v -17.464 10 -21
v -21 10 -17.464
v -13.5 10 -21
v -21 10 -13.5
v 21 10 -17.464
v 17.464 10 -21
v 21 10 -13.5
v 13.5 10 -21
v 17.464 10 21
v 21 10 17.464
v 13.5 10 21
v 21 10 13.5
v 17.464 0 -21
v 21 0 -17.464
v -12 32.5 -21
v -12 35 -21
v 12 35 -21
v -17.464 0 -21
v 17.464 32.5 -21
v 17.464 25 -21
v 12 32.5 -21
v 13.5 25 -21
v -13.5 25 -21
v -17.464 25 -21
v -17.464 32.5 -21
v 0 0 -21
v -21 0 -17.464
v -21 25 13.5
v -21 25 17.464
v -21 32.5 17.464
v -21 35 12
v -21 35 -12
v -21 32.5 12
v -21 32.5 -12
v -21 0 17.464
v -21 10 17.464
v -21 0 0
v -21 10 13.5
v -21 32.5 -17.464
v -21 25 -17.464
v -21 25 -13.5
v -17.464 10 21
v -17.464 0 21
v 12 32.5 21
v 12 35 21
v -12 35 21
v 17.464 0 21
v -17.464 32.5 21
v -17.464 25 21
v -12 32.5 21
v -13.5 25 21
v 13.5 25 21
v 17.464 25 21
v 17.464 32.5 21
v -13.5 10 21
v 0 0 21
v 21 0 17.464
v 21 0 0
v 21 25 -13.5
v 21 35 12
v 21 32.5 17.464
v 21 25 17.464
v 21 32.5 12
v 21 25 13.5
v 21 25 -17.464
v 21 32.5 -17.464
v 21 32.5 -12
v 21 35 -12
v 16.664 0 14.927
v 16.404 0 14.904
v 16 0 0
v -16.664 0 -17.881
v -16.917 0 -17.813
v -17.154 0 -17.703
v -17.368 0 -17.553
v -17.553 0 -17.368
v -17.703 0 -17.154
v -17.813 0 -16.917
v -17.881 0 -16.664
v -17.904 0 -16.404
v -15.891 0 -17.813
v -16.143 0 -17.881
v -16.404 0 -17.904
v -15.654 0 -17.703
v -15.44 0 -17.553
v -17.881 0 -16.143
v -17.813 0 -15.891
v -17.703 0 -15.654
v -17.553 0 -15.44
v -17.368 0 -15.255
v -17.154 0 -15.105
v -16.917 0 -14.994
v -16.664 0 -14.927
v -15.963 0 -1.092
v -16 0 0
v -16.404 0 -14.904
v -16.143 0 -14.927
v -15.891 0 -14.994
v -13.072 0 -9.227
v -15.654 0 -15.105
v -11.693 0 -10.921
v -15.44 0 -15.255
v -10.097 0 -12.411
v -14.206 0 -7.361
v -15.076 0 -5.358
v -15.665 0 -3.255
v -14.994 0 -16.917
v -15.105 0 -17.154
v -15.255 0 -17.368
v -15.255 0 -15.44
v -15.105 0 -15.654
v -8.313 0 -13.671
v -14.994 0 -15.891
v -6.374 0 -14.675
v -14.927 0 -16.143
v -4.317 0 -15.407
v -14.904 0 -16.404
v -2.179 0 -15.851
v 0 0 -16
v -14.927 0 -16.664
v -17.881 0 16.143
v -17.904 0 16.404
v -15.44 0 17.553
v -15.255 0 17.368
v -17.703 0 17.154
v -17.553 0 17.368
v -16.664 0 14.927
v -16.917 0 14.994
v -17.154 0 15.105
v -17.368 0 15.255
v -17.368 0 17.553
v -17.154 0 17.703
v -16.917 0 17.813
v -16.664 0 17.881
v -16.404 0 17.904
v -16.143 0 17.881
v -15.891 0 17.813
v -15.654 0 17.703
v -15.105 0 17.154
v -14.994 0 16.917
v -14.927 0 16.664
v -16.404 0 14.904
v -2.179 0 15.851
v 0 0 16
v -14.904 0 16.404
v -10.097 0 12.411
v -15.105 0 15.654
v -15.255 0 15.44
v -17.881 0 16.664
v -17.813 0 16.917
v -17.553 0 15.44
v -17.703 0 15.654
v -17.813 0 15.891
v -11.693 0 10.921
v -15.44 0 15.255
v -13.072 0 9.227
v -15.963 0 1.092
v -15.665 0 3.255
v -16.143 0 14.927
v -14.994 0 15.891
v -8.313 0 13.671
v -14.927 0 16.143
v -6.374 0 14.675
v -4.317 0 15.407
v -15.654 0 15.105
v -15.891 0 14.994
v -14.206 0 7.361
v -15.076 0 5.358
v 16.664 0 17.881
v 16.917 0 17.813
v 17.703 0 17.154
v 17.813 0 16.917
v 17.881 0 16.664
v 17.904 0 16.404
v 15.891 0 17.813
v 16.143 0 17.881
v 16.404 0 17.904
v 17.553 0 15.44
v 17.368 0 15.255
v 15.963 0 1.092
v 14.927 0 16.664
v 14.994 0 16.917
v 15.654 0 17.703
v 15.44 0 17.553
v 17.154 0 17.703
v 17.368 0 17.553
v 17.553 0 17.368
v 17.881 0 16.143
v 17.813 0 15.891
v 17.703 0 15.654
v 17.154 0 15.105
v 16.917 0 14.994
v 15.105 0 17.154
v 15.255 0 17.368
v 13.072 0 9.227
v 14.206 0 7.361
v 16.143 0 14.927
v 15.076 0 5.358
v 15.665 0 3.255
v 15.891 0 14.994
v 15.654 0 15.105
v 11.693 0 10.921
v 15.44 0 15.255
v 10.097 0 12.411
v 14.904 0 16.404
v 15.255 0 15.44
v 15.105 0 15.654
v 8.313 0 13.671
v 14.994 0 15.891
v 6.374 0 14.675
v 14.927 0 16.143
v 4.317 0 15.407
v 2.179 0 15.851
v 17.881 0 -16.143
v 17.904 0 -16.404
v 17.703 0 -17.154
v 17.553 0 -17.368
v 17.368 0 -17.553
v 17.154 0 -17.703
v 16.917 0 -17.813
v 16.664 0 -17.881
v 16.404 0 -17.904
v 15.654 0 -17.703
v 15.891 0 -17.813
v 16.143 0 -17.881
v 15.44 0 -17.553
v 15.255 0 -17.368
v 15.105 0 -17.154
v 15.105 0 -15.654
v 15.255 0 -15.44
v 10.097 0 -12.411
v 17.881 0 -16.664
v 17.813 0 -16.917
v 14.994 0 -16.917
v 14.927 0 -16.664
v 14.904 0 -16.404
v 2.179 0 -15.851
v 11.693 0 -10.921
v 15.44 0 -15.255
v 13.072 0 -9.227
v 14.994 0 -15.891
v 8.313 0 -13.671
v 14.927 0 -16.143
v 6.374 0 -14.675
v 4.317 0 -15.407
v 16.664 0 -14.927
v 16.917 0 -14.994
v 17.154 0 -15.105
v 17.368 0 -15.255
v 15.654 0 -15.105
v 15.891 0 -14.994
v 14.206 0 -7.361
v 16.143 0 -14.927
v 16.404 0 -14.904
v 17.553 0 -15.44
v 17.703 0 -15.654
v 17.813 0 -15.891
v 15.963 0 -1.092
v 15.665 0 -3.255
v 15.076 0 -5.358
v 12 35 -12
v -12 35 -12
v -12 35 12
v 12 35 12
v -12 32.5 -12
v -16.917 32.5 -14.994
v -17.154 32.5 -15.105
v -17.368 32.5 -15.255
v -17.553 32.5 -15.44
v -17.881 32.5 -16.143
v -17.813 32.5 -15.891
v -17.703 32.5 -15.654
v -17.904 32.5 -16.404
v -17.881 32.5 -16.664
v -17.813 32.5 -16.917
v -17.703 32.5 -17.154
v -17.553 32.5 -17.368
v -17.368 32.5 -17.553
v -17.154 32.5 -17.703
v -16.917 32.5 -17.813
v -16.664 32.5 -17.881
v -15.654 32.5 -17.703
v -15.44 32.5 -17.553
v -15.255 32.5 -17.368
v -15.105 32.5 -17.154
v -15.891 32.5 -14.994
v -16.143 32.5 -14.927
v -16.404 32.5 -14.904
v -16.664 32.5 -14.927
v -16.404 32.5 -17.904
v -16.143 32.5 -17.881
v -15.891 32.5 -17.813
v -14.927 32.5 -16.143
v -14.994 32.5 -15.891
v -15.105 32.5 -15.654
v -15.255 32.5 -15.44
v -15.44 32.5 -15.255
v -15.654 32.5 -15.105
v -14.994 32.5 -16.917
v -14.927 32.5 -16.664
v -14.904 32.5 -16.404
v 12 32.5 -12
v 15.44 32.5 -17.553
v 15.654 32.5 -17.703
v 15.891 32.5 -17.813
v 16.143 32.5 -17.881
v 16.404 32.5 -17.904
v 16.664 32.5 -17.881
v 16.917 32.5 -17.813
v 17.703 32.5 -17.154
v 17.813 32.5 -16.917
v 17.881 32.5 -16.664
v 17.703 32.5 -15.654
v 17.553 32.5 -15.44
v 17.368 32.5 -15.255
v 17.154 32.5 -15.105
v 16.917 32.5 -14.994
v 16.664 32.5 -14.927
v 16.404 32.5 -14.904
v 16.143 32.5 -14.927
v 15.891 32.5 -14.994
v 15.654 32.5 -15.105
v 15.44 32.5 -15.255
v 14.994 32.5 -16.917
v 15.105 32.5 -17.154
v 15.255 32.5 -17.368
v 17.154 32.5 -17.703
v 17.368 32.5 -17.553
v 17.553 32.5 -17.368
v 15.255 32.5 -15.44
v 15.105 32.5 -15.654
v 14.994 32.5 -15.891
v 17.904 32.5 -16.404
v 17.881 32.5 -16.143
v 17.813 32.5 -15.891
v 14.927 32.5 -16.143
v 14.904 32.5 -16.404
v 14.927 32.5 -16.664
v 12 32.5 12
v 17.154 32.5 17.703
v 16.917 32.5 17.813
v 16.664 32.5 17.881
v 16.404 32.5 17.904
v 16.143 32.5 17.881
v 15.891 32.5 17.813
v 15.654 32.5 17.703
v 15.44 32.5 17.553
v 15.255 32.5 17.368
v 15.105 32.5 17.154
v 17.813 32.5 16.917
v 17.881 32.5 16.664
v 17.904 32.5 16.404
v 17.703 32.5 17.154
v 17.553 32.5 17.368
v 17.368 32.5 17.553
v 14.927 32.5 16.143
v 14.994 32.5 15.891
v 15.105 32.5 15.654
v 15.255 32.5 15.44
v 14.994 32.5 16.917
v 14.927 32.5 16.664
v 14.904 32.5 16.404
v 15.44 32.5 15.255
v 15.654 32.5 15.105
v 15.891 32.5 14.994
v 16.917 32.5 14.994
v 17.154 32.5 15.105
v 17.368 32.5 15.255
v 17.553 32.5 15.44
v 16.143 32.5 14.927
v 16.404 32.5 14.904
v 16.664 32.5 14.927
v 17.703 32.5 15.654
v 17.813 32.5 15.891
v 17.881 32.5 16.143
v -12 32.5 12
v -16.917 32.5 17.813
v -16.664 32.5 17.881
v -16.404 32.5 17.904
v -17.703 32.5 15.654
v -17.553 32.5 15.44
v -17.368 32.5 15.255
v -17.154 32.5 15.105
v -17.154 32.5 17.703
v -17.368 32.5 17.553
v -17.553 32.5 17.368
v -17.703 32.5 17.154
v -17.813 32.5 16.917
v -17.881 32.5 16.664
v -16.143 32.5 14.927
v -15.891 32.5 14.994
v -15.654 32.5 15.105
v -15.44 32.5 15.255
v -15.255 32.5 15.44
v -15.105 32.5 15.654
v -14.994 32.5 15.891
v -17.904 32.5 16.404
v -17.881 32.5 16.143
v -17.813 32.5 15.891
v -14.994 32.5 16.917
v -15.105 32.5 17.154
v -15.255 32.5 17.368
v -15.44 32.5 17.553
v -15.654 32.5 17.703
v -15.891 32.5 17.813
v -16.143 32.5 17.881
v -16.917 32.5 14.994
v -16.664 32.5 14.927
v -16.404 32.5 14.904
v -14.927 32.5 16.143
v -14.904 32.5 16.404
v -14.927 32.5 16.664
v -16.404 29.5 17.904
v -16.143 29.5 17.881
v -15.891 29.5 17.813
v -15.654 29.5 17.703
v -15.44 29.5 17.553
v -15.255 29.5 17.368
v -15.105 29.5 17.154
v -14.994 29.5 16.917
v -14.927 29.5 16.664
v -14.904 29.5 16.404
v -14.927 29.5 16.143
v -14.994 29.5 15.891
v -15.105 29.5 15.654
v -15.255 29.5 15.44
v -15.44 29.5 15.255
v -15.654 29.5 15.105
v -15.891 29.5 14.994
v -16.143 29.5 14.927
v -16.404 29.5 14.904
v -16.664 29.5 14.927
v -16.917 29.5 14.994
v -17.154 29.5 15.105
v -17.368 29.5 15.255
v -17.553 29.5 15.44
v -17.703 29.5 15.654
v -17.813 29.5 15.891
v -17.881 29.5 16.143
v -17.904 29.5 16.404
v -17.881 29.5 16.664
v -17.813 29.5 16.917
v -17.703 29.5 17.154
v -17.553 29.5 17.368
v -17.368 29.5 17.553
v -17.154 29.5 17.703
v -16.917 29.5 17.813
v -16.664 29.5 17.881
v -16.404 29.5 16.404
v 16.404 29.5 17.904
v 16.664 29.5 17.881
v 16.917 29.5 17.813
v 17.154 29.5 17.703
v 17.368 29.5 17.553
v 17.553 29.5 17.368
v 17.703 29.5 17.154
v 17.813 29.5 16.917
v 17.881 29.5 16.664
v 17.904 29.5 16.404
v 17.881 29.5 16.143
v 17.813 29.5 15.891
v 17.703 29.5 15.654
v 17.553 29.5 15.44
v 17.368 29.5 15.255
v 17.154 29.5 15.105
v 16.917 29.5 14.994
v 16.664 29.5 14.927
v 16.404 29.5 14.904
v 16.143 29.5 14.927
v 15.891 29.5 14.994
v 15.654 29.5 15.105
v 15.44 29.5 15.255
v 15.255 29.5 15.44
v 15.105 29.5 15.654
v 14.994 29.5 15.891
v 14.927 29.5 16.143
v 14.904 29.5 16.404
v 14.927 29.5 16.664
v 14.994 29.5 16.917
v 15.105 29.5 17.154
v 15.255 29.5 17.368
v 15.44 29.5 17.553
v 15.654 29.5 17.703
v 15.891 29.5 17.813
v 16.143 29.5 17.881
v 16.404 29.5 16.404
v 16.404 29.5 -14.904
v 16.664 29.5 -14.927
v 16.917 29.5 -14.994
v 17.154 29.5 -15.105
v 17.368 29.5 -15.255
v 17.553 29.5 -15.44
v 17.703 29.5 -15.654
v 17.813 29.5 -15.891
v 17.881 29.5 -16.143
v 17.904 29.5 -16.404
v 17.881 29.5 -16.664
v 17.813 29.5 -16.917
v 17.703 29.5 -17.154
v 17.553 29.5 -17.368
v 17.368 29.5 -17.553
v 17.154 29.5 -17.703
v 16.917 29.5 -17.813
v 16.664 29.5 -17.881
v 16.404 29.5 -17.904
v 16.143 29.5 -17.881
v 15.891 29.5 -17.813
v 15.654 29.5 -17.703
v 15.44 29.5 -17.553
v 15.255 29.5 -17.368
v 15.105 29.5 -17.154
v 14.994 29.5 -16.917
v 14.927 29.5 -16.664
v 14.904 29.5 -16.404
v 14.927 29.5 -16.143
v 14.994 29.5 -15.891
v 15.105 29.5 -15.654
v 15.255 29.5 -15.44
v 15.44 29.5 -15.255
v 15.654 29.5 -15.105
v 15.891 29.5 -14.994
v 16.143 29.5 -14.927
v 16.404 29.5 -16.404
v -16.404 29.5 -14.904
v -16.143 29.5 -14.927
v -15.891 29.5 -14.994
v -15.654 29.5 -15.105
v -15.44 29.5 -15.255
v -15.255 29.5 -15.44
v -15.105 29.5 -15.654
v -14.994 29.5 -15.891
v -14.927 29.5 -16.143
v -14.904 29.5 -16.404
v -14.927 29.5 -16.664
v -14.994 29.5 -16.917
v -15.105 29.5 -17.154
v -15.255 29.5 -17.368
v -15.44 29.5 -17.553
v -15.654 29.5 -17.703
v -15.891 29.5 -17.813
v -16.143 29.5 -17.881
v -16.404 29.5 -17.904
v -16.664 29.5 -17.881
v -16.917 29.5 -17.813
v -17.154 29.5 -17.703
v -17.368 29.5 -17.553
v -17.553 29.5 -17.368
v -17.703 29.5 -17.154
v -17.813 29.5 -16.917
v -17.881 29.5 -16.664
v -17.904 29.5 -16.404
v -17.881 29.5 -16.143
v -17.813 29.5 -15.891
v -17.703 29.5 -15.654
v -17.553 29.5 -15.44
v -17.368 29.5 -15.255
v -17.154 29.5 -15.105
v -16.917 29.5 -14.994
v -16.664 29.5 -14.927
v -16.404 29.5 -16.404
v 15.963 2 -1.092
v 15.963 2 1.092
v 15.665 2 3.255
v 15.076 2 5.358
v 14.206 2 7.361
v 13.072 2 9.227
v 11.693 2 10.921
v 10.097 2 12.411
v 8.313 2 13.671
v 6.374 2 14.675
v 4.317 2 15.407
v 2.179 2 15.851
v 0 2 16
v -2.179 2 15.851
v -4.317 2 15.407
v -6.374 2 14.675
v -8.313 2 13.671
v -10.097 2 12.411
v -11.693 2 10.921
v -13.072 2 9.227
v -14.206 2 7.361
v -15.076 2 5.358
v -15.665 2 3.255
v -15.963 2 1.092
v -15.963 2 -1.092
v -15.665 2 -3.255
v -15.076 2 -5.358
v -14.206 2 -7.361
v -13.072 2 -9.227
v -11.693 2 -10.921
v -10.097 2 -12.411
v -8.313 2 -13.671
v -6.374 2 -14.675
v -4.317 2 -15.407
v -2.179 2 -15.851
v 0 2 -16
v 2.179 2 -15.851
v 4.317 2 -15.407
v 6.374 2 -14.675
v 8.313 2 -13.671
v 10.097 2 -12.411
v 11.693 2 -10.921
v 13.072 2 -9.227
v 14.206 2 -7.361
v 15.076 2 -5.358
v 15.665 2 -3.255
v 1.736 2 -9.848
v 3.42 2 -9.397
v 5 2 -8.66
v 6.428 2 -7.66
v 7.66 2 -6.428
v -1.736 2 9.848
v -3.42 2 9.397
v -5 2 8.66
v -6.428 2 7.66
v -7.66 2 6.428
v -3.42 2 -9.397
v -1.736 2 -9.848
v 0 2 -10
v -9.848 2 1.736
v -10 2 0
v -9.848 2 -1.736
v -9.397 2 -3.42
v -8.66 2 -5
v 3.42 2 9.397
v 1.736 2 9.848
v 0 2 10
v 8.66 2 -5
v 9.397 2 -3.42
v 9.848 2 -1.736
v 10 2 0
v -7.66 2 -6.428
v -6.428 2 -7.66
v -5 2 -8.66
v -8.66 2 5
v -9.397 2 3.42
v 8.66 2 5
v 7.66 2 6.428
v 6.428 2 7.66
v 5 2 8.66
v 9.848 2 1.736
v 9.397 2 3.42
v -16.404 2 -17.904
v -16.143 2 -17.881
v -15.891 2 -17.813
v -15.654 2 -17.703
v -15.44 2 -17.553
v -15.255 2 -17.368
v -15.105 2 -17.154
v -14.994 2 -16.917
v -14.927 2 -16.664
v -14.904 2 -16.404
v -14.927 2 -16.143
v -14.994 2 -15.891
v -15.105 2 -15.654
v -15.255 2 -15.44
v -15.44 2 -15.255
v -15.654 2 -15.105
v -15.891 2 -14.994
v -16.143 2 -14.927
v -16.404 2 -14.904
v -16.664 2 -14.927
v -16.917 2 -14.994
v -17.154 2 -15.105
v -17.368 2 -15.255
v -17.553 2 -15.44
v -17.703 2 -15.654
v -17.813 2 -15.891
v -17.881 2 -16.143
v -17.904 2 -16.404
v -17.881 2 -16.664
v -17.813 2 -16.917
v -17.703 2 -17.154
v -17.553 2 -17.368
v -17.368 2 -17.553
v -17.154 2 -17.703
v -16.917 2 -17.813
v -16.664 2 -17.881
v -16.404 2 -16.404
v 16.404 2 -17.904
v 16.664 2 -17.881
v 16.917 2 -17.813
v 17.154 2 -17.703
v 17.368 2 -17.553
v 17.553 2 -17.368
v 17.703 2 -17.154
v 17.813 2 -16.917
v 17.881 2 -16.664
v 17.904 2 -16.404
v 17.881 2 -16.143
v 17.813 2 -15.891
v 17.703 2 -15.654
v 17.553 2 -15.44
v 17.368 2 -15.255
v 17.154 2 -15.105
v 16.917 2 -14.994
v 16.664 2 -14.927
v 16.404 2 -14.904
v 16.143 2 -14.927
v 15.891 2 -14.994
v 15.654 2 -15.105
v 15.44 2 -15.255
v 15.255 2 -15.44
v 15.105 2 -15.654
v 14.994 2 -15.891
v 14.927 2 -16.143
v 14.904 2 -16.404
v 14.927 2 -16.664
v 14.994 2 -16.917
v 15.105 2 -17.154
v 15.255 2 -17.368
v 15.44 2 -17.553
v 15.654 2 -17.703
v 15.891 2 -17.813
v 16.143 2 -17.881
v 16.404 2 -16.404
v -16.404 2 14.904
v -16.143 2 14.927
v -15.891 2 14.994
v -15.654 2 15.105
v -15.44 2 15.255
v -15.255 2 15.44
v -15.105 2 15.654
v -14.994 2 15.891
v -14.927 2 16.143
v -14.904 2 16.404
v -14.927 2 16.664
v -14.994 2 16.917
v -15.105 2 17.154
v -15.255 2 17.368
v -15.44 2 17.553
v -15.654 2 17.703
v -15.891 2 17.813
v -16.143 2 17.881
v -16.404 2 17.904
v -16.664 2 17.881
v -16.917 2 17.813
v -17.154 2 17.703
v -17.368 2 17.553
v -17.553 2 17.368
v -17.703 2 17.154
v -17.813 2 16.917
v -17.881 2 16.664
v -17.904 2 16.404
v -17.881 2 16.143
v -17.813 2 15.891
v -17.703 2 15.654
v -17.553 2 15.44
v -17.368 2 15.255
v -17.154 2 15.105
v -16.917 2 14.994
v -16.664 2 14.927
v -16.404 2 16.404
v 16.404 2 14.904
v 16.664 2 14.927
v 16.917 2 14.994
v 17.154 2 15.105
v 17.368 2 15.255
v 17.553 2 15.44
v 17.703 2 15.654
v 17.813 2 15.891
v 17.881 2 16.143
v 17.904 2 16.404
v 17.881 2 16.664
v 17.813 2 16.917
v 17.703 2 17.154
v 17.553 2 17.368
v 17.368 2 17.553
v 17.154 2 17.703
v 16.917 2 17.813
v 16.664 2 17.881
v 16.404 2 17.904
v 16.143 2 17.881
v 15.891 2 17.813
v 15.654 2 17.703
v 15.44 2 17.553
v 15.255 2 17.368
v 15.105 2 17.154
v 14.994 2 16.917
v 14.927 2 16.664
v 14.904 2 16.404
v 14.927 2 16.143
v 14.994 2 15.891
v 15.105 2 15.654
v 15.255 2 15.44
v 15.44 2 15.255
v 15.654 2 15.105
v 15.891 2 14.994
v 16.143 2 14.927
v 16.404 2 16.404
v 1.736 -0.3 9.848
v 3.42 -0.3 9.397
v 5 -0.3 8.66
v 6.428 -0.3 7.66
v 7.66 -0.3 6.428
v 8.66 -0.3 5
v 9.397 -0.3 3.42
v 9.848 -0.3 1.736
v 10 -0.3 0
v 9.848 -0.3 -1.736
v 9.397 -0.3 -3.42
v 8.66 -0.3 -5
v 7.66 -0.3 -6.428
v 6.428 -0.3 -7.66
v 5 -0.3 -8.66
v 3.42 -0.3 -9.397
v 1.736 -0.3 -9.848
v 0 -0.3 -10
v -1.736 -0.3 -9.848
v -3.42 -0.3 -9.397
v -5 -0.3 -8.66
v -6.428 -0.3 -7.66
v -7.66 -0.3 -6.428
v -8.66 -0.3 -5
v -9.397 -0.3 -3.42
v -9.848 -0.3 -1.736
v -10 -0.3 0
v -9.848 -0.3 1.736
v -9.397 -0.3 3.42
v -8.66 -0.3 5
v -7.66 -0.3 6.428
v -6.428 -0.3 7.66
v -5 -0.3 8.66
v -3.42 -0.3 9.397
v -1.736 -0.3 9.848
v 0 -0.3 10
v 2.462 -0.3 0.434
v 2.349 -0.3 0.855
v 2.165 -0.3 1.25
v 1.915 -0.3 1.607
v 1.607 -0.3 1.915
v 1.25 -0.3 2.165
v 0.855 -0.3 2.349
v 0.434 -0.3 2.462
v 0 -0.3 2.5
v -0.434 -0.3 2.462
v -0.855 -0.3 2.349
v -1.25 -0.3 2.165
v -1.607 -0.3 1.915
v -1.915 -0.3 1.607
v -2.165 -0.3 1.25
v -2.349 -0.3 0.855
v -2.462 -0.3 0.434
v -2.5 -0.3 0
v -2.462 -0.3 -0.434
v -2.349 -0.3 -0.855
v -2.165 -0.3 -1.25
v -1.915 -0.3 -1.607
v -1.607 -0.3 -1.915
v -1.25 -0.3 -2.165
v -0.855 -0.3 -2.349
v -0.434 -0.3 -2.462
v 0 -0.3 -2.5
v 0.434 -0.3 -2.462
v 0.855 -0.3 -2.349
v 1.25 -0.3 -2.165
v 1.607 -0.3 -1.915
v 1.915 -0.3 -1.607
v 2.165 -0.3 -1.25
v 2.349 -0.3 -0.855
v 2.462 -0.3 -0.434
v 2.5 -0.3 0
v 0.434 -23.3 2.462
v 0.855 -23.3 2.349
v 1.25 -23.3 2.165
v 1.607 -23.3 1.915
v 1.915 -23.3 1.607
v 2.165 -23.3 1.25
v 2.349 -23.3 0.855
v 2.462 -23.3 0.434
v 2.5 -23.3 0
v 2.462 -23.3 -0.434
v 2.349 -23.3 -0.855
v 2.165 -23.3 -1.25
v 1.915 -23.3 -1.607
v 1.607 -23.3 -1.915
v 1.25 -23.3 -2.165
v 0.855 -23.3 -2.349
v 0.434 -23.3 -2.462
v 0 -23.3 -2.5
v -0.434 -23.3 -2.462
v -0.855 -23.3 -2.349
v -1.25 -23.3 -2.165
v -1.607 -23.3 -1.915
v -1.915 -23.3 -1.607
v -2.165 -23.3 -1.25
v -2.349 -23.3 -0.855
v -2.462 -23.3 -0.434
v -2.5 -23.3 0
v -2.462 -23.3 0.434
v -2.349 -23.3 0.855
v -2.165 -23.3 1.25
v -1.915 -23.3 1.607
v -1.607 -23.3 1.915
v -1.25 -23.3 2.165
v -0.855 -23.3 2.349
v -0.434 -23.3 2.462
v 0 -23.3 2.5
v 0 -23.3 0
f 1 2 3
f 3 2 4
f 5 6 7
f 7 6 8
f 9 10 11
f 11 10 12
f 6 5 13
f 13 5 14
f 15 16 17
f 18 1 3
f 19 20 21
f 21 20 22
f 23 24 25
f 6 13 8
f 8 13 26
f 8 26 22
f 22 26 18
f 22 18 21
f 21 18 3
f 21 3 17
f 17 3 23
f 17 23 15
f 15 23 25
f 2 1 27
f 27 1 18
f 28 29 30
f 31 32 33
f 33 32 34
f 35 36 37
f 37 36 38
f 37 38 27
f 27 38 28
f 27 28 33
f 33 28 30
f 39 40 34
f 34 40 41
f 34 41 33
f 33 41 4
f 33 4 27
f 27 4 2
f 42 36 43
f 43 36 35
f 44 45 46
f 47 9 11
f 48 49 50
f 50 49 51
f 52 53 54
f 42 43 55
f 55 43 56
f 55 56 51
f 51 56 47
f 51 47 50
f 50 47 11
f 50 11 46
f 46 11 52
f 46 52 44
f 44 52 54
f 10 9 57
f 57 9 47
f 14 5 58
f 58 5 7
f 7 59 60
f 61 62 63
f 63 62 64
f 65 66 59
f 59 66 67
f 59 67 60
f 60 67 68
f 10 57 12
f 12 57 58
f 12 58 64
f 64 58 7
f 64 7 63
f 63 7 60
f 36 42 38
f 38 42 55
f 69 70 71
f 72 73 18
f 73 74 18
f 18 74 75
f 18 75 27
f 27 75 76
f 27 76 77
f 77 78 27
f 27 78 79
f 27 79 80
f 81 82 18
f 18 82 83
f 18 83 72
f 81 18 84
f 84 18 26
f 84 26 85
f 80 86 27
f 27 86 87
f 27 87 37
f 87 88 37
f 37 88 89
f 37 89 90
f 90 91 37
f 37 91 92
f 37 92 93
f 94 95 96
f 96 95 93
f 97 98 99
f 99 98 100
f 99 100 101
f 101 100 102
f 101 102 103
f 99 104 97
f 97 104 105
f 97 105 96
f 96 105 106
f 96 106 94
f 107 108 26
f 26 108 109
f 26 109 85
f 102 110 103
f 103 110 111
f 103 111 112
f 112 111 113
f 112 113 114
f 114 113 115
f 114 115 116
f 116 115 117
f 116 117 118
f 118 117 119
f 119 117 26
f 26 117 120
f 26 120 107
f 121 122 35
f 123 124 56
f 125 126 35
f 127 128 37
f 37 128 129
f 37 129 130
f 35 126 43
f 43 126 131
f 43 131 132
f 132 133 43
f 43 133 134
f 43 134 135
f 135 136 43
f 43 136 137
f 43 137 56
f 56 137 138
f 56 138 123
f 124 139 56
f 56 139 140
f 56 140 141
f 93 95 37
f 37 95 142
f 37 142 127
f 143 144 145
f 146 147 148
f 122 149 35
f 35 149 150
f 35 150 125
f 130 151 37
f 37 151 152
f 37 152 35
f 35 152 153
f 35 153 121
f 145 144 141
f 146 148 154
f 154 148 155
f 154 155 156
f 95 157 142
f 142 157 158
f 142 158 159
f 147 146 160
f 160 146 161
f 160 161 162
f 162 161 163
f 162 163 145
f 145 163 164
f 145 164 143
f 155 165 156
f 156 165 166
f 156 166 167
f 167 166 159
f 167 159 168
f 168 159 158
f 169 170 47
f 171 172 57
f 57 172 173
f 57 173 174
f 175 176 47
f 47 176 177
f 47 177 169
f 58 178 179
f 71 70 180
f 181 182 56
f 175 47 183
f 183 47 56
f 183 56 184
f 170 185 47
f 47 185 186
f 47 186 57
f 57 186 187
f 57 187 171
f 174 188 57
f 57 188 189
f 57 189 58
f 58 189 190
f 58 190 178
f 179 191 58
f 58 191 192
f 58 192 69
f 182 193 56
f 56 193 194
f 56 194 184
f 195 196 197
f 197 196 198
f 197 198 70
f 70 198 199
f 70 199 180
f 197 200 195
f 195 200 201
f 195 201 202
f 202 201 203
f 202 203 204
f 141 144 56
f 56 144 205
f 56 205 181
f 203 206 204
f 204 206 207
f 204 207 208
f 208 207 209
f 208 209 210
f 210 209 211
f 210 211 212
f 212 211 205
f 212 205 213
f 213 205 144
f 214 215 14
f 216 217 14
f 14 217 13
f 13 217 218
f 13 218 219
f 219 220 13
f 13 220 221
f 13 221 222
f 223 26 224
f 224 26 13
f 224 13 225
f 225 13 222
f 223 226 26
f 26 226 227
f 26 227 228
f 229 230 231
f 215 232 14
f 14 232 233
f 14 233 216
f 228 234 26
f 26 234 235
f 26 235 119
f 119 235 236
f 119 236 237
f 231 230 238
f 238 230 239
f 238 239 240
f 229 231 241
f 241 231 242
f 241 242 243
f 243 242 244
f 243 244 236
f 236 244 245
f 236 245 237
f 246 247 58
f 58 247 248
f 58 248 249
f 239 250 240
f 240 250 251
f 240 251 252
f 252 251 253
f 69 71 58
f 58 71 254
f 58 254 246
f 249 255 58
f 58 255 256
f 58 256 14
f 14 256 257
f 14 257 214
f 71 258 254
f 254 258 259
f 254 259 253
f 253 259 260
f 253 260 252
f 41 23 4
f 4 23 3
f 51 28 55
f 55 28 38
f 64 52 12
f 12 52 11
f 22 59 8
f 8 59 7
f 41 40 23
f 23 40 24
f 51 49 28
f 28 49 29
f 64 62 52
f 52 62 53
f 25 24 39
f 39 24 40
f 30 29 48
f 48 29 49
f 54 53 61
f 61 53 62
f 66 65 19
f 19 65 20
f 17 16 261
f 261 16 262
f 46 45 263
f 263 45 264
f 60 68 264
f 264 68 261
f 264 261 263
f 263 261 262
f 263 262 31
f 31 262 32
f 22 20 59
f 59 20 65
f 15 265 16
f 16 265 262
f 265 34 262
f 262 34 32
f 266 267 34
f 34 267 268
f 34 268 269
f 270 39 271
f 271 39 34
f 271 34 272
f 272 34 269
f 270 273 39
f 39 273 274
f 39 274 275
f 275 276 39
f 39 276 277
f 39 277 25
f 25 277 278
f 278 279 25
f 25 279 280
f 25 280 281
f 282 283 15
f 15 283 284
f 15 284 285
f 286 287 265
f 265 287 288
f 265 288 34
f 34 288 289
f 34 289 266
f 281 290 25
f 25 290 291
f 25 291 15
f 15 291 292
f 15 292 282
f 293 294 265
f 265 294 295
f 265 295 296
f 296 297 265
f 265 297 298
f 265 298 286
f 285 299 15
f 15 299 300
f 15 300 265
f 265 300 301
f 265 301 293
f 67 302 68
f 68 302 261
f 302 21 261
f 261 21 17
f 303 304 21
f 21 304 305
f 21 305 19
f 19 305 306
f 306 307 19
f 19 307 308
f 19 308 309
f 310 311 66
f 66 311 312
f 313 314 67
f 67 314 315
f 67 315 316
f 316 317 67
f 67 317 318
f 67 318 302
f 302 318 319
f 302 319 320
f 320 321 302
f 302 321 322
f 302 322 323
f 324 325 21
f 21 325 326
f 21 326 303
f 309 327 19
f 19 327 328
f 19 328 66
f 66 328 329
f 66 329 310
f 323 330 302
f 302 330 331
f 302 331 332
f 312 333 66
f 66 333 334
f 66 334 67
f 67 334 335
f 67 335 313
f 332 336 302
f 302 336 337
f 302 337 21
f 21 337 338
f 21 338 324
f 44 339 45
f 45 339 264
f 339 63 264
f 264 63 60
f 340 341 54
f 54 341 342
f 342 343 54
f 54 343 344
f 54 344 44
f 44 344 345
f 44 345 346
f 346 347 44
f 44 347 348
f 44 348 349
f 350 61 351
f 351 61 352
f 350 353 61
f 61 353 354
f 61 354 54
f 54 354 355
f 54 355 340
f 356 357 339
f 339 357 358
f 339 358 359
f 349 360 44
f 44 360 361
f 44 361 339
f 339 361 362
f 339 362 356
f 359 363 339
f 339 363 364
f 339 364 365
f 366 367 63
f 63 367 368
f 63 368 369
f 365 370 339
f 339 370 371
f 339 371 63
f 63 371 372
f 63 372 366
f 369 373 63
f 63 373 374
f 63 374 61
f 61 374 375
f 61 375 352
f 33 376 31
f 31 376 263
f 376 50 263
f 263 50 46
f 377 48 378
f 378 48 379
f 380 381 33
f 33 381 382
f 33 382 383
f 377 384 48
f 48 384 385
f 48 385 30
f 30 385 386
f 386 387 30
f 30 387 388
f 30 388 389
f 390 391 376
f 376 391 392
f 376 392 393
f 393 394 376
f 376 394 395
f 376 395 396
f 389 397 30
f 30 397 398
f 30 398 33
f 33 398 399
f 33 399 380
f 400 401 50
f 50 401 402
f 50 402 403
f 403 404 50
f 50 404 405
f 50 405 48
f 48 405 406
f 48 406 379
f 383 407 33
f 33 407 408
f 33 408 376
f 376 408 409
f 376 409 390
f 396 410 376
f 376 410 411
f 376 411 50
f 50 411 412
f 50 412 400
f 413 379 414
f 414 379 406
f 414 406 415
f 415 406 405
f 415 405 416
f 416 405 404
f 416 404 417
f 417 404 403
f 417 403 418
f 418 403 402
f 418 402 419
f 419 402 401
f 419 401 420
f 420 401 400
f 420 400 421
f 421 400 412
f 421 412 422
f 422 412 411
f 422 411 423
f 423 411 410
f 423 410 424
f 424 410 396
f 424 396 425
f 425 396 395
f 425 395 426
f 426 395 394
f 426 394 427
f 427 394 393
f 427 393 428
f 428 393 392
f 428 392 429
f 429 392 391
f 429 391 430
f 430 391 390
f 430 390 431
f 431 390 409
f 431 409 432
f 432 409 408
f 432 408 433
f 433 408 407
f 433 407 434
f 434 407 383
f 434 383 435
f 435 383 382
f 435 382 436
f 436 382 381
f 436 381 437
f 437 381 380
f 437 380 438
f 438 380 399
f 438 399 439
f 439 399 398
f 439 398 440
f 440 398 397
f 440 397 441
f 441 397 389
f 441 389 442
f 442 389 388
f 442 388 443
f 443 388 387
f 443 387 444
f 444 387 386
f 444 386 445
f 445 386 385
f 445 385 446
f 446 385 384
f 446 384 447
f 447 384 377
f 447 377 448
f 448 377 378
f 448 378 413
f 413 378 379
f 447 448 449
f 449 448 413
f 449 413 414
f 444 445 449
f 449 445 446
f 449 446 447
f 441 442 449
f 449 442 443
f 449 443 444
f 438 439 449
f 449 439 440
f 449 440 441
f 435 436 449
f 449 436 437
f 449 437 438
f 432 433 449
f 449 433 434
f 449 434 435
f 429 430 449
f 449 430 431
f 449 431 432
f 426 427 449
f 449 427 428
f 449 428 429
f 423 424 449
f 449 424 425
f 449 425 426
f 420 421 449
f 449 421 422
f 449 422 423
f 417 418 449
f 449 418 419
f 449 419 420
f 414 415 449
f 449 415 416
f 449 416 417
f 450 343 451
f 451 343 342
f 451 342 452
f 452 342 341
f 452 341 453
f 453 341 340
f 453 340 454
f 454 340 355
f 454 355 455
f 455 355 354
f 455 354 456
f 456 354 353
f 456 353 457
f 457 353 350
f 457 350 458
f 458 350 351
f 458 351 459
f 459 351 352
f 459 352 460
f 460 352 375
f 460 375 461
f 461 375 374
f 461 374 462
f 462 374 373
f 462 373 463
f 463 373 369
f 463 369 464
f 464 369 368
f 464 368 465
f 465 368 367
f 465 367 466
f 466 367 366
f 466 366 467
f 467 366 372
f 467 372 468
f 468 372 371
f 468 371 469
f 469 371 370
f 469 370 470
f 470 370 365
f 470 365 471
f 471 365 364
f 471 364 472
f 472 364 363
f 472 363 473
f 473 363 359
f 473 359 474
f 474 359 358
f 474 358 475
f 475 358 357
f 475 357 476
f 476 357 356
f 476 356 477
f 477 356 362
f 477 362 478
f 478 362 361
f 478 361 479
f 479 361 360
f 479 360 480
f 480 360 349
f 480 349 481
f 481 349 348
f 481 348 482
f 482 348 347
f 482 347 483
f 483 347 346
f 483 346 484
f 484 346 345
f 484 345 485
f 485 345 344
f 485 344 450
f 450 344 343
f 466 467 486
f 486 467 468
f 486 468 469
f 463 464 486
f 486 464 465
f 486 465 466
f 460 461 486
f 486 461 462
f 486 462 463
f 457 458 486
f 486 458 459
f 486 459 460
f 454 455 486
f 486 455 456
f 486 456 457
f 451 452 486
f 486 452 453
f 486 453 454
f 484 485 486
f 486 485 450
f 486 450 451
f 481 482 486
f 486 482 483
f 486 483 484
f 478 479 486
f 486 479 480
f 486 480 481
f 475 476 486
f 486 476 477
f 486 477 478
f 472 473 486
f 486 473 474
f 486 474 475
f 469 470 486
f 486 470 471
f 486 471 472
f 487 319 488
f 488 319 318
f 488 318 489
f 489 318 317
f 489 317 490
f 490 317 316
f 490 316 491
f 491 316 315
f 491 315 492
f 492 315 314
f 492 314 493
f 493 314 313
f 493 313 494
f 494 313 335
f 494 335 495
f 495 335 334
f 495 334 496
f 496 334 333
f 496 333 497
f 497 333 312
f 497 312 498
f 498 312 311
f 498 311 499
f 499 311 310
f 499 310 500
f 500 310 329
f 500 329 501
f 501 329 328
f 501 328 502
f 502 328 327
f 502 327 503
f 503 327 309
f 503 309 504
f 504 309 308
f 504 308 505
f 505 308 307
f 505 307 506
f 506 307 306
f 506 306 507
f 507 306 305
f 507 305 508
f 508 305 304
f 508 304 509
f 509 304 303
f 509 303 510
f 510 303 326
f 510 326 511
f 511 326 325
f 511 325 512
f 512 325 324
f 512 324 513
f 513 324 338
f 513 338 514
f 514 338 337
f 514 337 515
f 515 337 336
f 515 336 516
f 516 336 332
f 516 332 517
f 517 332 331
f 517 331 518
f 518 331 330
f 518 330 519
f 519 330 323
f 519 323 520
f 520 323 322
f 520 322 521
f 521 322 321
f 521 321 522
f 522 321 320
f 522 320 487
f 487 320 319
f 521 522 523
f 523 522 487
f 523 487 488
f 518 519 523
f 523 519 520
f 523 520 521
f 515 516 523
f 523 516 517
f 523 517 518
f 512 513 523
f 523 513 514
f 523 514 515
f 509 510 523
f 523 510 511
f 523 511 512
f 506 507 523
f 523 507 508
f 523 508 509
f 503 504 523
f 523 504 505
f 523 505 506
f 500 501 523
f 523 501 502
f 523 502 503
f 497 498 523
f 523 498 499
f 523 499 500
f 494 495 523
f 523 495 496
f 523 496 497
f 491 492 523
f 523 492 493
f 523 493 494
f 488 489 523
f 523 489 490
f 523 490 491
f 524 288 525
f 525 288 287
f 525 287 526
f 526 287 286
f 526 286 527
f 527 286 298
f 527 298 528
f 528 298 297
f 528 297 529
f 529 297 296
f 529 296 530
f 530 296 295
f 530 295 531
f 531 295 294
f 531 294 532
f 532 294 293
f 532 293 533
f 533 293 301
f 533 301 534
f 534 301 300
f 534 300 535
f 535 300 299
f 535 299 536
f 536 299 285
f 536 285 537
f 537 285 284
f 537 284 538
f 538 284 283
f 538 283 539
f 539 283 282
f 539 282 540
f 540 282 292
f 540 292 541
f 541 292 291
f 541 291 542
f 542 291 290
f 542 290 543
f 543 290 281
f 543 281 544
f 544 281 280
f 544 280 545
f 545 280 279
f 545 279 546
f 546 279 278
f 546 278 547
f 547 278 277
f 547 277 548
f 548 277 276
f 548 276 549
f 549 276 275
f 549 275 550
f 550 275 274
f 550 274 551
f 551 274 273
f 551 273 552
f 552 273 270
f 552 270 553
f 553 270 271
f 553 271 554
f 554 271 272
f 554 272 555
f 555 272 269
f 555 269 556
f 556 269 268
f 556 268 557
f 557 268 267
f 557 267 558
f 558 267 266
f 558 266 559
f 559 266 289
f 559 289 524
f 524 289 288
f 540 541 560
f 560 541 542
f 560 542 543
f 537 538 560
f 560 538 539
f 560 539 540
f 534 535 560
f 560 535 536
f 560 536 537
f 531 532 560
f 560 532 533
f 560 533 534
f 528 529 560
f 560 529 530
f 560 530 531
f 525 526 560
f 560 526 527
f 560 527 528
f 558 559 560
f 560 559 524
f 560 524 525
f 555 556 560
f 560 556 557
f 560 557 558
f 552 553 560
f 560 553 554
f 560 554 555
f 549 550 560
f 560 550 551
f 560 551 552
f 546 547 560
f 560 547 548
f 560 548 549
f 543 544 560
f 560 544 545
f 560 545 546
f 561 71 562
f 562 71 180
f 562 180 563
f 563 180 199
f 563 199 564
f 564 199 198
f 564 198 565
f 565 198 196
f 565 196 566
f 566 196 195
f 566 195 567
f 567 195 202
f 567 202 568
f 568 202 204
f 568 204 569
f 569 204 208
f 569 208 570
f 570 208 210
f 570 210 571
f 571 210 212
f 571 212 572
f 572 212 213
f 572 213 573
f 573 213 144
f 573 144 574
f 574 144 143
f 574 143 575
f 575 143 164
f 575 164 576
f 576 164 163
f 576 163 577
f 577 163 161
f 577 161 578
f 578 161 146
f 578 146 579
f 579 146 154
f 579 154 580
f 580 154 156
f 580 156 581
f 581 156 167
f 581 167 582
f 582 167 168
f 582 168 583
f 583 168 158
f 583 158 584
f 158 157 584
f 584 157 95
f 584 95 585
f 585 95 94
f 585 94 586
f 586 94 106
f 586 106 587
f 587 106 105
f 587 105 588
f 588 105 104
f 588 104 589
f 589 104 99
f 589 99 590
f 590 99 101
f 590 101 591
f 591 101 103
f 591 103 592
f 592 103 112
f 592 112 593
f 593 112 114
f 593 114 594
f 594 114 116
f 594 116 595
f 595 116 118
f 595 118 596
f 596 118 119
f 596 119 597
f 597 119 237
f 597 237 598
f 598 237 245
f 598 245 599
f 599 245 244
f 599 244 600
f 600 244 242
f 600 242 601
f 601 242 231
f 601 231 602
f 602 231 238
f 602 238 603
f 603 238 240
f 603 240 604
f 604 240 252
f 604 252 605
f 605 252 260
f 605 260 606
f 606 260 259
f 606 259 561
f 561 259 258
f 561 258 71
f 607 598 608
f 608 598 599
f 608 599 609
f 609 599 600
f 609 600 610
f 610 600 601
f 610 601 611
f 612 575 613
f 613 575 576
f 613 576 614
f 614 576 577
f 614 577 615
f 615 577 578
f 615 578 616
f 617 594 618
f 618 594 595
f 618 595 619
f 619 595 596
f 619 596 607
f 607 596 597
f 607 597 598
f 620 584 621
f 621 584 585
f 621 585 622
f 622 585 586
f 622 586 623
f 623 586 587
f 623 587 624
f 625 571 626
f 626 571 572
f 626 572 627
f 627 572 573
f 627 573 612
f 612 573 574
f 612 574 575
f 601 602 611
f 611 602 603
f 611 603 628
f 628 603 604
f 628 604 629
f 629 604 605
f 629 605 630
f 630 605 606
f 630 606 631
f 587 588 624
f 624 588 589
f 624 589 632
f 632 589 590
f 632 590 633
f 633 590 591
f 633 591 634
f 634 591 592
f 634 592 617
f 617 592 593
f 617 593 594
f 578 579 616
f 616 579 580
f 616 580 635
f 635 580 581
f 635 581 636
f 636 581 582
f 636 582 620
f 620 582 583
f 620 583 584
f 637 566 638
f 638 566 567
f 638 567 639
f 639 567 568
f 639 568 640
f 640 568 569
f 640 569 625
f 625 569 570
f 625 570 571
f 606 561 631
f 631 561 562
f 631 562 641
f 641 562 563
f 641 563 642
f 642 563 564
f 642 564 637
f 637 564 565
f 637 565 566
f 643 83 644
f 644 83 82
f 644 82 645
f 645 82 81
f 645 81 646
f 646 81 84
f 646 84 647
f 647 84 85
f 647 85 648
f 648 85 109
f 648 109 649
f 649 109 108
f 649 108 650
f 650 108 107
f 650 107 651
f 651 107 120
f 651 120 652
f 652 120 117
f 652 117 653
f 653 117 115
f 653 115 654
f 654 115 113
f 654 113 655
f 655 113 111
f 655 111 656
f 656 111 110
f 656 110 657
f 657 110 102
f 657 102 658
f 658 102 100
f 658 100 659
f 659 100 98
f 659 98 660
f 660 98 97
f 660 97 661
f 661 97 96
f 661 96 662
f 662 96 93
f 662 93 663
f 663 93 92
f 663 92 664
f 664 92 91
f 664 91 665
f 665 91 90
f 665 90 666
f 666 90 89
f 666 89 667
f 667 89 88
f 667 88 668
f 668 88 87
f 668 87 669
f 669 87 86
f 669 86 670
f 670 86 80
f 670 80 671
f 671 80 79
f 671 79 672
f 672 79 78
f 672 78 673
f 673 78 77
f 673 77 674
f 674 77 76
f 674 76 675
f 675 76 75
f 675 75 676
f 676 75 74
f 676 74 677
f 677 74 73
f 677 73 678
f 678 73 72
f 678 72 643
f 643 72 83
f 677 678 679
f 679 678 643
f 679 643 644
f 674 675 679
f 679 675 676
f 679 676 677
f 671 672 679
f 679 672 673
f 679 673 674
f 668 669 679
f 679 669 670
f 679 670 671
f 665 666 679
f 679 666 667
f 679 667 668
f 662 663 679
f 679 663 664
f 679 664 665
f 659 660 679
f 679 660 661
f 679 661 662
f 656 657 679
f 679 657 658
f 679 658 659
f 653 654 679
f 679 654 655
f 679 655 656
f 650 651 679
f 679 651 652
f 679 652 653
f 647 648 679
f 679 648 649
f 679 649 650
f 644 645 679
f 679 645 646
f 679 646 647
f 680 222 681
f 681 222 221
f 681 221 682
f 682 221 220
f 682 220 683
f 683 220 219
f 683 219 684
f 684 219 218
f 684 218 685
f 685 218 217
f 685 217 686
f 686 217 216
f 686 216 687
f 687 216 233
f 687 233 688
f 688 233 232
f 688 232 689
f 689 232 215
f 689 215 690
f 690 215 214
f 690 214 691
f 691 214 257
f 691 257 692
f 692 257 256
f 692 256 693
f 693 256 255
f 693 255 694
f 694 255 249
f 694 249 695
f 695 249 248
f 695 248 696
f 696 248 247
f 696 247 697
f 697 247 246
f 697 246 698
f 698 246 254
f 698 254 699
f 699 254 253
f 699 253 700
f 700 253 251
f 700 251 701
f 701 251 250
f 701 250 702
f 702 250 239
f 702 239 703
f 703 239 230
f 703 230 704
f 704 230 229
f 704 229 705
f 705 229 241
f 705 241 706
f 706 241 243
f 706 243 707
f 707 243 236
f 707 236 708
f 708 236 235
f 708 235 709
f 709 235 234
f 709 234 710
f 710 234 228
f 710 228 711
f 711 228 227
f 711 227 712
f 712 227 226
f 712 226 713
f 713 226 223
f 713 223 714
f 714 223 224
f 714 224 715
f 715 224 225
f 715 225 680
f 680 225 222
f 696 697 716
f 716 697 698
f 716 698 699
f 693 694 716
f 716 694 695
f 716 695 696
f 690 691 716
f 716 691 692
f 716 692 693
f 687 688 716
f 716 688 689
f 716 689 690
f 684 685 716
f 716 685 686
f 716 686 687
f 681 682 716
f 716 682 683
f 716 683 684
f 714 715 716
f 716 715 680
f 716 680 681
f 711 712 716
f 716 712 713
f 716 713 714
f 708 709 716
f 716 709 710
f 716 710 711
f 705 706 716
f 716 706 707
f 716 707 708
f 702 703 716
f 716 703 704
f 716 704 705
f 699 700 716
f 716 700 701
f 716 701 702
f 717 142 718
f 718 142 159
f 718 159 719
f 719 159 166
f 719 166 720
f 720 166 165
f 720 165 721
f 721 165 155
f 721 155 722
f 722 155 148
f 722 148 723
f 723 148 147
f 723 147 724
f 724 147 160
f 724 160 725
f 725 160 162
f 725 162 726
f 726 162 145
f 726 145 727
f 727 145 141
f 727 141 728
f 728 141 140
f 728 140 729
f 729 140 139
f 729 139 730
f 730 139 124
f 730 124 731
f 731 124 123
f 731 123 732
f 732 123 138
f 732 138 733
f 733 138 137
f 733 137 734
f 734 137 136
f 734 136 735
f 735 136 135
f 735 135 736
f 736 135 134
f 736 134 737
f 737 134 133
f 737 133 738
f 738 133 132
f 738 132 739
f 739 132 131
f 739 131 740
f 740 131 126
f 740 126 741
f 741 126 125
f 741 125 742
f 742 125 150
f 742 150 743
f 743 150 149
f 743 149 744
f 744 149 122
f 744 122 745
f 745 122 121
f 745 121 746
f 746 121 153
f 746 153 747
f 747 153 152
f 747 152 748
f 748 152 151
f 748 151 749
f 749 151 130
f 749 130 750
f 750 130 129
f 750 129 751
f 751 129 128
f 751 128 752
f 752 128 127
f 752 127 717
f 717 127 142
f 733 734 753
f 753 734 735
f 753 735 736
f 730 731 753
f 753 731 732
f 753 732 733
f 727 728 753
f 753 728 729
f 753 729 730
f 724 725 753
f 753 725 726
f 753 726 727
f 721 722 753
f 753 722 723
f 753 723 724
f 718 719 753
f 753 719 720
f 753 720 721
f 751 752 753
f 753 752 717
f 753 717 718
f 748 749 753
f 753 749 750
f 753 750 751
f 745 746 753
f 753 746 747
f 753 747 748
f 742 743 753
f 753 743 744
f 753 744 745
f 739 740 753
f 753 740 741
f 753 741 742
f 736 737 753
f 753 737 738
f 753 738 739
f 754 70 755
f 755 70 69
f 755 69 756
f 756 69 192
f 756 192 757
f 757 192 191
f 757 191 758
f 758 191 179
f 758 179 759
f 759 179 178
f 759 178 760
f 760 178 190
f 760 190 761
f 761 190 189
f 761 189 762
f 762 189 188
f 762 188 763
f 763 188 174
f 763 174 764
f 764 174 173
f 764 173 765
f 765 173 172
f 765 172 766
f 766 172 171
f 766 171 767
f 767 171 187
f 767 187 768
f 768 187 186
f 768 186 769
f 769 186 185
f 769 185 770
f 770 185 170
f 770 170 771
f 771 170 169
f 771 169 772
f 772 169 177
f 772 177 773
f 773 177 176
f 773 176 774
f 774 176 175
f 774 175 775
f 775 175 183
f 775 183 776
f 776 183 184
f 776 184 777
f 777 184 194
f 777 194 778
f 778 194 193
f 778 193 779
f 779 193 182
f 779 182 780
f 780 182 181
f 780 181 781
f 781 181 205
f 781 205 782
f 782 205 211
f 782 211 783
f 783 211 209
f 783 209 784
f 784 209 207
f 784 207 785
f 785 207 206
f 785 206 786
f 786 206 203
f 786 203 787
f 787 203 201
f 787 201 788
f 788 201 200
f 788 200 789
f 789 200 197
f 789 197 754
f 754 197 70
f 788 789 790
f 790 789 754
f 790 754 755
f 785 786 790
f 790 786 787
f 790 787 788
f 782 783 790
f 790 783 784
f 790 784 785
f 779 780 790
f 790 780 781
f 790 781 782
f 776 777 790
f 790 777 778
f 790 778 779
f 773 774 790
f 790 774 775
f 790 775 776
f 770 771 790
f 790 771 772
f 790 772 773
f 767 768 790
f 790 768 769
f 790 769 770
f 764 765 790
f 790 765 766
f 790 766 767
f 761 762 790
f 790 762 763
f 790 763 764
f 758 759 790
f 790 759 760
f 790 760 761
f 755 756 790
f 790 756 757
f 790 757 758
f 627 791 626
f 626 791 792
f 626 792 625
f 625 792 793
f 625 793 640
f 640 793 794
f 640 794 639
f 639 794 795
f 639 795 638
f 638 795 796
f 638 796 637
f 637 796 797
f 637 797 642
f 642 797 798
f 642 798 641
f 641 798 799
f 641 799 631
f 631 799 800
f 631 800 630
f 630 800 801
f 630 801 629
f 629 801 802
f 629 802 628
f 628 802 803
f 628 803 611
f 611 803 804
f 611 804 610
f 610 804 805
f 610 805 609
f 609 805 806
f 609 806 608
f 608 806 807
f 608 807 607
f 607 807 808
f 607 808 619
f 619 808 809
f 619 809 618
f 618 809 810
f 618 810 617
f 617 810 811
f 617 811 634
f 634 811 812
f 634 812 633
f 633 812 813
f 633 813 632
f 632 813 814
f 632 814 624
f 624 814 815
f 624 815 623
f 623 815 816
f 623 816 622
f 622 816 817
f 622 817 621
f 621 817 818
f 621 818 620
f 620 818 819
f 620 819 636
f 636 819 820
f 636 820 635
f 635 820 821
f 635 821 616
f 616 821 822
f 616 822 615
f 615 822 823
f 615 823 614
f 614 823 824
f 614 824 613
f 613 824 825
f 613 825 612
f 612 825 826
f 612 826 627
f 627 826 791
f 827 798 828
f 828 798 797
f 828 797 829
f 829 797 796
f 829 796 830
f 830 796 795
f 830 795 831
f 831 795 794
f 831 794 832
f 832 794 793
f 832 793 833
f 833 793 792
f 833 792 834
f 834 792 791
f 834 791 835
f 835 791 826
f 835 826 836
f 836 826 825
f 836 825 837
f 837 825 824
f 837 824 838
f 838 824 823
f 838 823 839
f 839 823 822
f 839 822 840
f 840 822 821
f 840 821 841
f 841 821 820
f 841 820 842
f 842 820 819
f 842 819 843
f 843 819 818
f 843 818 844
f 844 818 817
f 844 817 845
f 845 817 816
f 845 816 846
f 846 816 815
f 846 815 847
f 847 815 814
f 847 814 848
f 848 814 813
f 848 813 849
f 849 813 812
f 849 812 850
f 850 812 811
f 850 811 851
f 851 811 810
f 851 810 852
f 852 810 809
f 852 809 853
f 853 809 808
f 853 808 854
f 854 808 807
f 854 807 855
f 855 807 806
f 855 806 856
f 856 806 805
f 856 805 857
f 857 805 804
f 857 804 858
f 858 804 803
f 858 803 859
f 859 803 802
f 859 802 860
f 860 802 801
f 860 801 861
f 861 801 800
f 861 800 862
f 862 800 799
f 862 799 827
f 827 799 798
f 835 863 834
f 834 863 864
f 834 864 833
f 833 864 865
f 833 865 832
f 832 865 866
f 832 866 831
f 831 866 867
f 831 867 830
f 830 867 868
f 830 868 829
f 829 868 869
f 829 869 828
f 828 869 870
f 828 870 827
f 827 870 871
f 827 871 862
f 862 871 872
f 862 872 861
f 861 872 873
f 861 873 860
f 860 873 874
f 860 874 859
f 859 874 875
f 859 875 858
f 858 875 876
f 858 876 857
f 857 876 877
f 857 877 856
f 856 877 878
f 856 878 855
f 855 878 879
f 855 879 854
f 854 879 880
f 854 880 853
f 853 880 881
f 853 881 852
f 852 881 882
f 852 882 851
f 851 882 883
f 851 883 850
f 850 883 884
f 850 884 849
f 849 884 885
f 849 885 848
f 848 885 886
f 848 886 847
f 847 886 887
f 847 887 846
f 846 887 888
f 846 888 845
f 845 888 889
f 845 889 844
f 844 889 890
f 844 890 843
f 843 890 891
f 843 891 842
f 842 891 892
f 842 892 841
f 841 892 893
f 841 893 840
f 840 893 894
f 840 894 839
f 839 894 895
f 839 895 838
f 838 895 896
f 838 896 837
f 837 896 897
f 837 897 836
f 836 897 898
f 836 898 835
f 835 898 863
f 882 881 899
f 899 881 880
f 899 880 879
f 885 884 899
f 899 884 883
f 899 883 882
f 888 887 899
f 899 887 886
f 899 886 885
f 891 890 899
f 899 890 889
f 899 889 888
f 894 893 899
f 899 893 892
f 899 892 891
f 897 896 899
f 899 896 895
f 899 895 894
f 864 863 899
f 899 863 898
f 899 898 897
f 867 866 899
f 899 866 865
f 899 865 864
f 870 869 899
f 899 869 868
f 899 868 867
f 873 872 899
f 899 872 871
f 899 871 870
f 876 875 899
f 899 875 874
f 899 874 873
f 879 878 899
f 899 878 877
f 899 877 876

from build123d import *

# Parameters (mm, degrees)
BOSS_EXTRUDE1_DEPTH = 10
BOSS_EXTRUDE2_DEPTH = 15
BOSS_EXTRUDE3_DEPTH = 10
CUT_EXTRUDE1_DEPTH  = 2.5
SKETCH5_R           = 1.5
CUT_EXTRUDE2_DEPTH  = 3
CUT_EXTRUDE3_START  = -2
SKETCH6_R           = 16
SKETCH6_R_2         = 1.5
CUT_EXTRUDE3_DEPTH  = 2
SKETCH7_R           = 10
BOSS_EXTRUDE4_DEPTH = 2.3
SKETCH8_R           = 2.5
BOSS_EXTRUDE5_DEPTH = 23


with BuildPart() as part:
    # Sketch1 → Boss-Extrude1 (new body)
    with BuildSketch(Plane(origin=(0, 0, 0), x_dir=(1, 0, 0), z_dir=(0, 1, 0))):
        Polygon((-17.464466094, 21), (17.464466094, 21), (21, 17.464466094), (21, -17.464466094), (17.464466094, -21), (-17.464466094, -21), (-21, -17.464466094), (-21, 17.464466094), align=None)
    extrude(amount=BOSS_EXTRUDE1_DEPTH)

    # Sketch2 → Boss-Extrude2 (add)
    with BuildSketch(Plane(origin=(0, 10, 0), x_dir=(1, 0, 0), z_dir=(0, 1, 0))):
        Polygon((-13.5, 21), (13.5, 21), (21, 13.5), (21, -13.5), (13.5, -21), (-13.5, -21), (-21, -13.5), (-21, 13.5), align=None)
    extrude(amount=BOSS_EXTRUDE2_DEPTH)

    # Sketch3 → Boss-Extrude3 (add)
    with BuildSketch(Plane(origin=(0, 25, 0), x_dir=(1, 0, 0), z_dir=(0, 1, 0))):
        Polygon((-17.464466094, 21), (17.464466094, 21), (21, 17.464466094), (21, -17.464466094), (17.464466094, -21), (-17.464466094, -21), (-21, -17.464466094), (-21, 17.464466094), align=None)
    extrude(amount=BOSS_EXTRUDE3_DEPTH)

    # Sketch4 → Cut-Extrude1 (cut)
    with BuildSketch(Plane(origin=(0, 35, 0), x_dir=(1, 0, 0), z_dir=(0, 1, 0))):
        Polygon((-12, 12), (-21, 12), (-21, 17.464466094), (-17.464466094, 21), (-12, 21), align=None)
        Polygon((12, 21), (12, 12), (21, 12), (21, 17.464466094), (17.464466094, 21), align=None)
        Polygon((12, -12), (21, -12), (21, -17.464466094), (17.464466094, -21), (12, -21), align=None)
        Polygon((-12, -21), (-12, -12), (-21, -12), (-21, -17.464466094), (-17.464466094, -21), align=None)
    extrude(amount=-CUT_EXTRUDE1_DEPTH, mode=Mode.SUBTRACT)

    # Sketch5 → Cut-Extrude2 (cut)
    with BuildSketch(Plane(origin=(0, 32.5, 0), x_dir=(1, 0, 0), z_dir=(0, 1, 0))):
        with Locations(Location((16.403805922, 16.403805922, 0), (0, 0, 270))):
            Circle(SKETCH5_R)
        with Locations(Location((-16.403805922, 16.403805922, 0), (0, 0, 90))):
            Circle(SKETCH5_R)
        with Locations(Location((-16.403805922, -16.403805922, 0), (0, 0, 270))):
            Circle(SKETCH5_R)
        with Locations(Location((16.403805922, -16.403805922, 0), (0, 0, 90))):
            Circle(SKETCH5_R)
    extrude(amount=-CUT_EXTRUDE2_DEPTH, mode=Mode.SUBTRACT)

    # Sketch6 → Cut-Extrude3 (cut)
    with BuildSketch(Plane.XZ.offset(CUT_EXTRUDE3_START)):
        with Locations(Location((0, 0, 0), (0, 0, 270))):
            Circle(SKETCH6_R)
        with Locations(Location((-16.403805922, -16.403805922, 0), (0, 0, 270))):
            Circle(SKETCH6_R_2)
        with Locations(Location((16.403805922, -16.403805922, 0), (0, 0, 90))):
            Circle(SKETCH6_R_2)
        with Locations(Location((-16.403805922, 16.403805922, 0), (0, 0, 90))):
            Circle(SKETCH6_R_2)
        with Locations(Location((16.403805922, 16.403805922, 0), (0, 0, 270))):
            Circle(SKETCH6_R_2)
    extrude(amount=CUT_EXTRUDE3_DEPTH, mode=Mode.SUBTRACT)

    # Sketch7 → Boss-Extrude4 (add)
    with BuildSketch(Plane.XZ.offset(-2)):
        with Locations(Location((0, 0, 0), (0, 0, 270))):
            Circle(SKETCH7_R)
    extrude(amount=BOSS_EXTRUDE4_DEPTH)

    # Sketch8 → Boss-Extrude5 (add)
    with BuildSketch(Plane.XZ.offset(0.3)):
        with Locations(Location((0, 0, 0), (0, 0, 270))):
            Circle(SKETCH8_R)
    extrude(amount=BOSS_EXTRUDE5_DEPTH)


solid = part.part
